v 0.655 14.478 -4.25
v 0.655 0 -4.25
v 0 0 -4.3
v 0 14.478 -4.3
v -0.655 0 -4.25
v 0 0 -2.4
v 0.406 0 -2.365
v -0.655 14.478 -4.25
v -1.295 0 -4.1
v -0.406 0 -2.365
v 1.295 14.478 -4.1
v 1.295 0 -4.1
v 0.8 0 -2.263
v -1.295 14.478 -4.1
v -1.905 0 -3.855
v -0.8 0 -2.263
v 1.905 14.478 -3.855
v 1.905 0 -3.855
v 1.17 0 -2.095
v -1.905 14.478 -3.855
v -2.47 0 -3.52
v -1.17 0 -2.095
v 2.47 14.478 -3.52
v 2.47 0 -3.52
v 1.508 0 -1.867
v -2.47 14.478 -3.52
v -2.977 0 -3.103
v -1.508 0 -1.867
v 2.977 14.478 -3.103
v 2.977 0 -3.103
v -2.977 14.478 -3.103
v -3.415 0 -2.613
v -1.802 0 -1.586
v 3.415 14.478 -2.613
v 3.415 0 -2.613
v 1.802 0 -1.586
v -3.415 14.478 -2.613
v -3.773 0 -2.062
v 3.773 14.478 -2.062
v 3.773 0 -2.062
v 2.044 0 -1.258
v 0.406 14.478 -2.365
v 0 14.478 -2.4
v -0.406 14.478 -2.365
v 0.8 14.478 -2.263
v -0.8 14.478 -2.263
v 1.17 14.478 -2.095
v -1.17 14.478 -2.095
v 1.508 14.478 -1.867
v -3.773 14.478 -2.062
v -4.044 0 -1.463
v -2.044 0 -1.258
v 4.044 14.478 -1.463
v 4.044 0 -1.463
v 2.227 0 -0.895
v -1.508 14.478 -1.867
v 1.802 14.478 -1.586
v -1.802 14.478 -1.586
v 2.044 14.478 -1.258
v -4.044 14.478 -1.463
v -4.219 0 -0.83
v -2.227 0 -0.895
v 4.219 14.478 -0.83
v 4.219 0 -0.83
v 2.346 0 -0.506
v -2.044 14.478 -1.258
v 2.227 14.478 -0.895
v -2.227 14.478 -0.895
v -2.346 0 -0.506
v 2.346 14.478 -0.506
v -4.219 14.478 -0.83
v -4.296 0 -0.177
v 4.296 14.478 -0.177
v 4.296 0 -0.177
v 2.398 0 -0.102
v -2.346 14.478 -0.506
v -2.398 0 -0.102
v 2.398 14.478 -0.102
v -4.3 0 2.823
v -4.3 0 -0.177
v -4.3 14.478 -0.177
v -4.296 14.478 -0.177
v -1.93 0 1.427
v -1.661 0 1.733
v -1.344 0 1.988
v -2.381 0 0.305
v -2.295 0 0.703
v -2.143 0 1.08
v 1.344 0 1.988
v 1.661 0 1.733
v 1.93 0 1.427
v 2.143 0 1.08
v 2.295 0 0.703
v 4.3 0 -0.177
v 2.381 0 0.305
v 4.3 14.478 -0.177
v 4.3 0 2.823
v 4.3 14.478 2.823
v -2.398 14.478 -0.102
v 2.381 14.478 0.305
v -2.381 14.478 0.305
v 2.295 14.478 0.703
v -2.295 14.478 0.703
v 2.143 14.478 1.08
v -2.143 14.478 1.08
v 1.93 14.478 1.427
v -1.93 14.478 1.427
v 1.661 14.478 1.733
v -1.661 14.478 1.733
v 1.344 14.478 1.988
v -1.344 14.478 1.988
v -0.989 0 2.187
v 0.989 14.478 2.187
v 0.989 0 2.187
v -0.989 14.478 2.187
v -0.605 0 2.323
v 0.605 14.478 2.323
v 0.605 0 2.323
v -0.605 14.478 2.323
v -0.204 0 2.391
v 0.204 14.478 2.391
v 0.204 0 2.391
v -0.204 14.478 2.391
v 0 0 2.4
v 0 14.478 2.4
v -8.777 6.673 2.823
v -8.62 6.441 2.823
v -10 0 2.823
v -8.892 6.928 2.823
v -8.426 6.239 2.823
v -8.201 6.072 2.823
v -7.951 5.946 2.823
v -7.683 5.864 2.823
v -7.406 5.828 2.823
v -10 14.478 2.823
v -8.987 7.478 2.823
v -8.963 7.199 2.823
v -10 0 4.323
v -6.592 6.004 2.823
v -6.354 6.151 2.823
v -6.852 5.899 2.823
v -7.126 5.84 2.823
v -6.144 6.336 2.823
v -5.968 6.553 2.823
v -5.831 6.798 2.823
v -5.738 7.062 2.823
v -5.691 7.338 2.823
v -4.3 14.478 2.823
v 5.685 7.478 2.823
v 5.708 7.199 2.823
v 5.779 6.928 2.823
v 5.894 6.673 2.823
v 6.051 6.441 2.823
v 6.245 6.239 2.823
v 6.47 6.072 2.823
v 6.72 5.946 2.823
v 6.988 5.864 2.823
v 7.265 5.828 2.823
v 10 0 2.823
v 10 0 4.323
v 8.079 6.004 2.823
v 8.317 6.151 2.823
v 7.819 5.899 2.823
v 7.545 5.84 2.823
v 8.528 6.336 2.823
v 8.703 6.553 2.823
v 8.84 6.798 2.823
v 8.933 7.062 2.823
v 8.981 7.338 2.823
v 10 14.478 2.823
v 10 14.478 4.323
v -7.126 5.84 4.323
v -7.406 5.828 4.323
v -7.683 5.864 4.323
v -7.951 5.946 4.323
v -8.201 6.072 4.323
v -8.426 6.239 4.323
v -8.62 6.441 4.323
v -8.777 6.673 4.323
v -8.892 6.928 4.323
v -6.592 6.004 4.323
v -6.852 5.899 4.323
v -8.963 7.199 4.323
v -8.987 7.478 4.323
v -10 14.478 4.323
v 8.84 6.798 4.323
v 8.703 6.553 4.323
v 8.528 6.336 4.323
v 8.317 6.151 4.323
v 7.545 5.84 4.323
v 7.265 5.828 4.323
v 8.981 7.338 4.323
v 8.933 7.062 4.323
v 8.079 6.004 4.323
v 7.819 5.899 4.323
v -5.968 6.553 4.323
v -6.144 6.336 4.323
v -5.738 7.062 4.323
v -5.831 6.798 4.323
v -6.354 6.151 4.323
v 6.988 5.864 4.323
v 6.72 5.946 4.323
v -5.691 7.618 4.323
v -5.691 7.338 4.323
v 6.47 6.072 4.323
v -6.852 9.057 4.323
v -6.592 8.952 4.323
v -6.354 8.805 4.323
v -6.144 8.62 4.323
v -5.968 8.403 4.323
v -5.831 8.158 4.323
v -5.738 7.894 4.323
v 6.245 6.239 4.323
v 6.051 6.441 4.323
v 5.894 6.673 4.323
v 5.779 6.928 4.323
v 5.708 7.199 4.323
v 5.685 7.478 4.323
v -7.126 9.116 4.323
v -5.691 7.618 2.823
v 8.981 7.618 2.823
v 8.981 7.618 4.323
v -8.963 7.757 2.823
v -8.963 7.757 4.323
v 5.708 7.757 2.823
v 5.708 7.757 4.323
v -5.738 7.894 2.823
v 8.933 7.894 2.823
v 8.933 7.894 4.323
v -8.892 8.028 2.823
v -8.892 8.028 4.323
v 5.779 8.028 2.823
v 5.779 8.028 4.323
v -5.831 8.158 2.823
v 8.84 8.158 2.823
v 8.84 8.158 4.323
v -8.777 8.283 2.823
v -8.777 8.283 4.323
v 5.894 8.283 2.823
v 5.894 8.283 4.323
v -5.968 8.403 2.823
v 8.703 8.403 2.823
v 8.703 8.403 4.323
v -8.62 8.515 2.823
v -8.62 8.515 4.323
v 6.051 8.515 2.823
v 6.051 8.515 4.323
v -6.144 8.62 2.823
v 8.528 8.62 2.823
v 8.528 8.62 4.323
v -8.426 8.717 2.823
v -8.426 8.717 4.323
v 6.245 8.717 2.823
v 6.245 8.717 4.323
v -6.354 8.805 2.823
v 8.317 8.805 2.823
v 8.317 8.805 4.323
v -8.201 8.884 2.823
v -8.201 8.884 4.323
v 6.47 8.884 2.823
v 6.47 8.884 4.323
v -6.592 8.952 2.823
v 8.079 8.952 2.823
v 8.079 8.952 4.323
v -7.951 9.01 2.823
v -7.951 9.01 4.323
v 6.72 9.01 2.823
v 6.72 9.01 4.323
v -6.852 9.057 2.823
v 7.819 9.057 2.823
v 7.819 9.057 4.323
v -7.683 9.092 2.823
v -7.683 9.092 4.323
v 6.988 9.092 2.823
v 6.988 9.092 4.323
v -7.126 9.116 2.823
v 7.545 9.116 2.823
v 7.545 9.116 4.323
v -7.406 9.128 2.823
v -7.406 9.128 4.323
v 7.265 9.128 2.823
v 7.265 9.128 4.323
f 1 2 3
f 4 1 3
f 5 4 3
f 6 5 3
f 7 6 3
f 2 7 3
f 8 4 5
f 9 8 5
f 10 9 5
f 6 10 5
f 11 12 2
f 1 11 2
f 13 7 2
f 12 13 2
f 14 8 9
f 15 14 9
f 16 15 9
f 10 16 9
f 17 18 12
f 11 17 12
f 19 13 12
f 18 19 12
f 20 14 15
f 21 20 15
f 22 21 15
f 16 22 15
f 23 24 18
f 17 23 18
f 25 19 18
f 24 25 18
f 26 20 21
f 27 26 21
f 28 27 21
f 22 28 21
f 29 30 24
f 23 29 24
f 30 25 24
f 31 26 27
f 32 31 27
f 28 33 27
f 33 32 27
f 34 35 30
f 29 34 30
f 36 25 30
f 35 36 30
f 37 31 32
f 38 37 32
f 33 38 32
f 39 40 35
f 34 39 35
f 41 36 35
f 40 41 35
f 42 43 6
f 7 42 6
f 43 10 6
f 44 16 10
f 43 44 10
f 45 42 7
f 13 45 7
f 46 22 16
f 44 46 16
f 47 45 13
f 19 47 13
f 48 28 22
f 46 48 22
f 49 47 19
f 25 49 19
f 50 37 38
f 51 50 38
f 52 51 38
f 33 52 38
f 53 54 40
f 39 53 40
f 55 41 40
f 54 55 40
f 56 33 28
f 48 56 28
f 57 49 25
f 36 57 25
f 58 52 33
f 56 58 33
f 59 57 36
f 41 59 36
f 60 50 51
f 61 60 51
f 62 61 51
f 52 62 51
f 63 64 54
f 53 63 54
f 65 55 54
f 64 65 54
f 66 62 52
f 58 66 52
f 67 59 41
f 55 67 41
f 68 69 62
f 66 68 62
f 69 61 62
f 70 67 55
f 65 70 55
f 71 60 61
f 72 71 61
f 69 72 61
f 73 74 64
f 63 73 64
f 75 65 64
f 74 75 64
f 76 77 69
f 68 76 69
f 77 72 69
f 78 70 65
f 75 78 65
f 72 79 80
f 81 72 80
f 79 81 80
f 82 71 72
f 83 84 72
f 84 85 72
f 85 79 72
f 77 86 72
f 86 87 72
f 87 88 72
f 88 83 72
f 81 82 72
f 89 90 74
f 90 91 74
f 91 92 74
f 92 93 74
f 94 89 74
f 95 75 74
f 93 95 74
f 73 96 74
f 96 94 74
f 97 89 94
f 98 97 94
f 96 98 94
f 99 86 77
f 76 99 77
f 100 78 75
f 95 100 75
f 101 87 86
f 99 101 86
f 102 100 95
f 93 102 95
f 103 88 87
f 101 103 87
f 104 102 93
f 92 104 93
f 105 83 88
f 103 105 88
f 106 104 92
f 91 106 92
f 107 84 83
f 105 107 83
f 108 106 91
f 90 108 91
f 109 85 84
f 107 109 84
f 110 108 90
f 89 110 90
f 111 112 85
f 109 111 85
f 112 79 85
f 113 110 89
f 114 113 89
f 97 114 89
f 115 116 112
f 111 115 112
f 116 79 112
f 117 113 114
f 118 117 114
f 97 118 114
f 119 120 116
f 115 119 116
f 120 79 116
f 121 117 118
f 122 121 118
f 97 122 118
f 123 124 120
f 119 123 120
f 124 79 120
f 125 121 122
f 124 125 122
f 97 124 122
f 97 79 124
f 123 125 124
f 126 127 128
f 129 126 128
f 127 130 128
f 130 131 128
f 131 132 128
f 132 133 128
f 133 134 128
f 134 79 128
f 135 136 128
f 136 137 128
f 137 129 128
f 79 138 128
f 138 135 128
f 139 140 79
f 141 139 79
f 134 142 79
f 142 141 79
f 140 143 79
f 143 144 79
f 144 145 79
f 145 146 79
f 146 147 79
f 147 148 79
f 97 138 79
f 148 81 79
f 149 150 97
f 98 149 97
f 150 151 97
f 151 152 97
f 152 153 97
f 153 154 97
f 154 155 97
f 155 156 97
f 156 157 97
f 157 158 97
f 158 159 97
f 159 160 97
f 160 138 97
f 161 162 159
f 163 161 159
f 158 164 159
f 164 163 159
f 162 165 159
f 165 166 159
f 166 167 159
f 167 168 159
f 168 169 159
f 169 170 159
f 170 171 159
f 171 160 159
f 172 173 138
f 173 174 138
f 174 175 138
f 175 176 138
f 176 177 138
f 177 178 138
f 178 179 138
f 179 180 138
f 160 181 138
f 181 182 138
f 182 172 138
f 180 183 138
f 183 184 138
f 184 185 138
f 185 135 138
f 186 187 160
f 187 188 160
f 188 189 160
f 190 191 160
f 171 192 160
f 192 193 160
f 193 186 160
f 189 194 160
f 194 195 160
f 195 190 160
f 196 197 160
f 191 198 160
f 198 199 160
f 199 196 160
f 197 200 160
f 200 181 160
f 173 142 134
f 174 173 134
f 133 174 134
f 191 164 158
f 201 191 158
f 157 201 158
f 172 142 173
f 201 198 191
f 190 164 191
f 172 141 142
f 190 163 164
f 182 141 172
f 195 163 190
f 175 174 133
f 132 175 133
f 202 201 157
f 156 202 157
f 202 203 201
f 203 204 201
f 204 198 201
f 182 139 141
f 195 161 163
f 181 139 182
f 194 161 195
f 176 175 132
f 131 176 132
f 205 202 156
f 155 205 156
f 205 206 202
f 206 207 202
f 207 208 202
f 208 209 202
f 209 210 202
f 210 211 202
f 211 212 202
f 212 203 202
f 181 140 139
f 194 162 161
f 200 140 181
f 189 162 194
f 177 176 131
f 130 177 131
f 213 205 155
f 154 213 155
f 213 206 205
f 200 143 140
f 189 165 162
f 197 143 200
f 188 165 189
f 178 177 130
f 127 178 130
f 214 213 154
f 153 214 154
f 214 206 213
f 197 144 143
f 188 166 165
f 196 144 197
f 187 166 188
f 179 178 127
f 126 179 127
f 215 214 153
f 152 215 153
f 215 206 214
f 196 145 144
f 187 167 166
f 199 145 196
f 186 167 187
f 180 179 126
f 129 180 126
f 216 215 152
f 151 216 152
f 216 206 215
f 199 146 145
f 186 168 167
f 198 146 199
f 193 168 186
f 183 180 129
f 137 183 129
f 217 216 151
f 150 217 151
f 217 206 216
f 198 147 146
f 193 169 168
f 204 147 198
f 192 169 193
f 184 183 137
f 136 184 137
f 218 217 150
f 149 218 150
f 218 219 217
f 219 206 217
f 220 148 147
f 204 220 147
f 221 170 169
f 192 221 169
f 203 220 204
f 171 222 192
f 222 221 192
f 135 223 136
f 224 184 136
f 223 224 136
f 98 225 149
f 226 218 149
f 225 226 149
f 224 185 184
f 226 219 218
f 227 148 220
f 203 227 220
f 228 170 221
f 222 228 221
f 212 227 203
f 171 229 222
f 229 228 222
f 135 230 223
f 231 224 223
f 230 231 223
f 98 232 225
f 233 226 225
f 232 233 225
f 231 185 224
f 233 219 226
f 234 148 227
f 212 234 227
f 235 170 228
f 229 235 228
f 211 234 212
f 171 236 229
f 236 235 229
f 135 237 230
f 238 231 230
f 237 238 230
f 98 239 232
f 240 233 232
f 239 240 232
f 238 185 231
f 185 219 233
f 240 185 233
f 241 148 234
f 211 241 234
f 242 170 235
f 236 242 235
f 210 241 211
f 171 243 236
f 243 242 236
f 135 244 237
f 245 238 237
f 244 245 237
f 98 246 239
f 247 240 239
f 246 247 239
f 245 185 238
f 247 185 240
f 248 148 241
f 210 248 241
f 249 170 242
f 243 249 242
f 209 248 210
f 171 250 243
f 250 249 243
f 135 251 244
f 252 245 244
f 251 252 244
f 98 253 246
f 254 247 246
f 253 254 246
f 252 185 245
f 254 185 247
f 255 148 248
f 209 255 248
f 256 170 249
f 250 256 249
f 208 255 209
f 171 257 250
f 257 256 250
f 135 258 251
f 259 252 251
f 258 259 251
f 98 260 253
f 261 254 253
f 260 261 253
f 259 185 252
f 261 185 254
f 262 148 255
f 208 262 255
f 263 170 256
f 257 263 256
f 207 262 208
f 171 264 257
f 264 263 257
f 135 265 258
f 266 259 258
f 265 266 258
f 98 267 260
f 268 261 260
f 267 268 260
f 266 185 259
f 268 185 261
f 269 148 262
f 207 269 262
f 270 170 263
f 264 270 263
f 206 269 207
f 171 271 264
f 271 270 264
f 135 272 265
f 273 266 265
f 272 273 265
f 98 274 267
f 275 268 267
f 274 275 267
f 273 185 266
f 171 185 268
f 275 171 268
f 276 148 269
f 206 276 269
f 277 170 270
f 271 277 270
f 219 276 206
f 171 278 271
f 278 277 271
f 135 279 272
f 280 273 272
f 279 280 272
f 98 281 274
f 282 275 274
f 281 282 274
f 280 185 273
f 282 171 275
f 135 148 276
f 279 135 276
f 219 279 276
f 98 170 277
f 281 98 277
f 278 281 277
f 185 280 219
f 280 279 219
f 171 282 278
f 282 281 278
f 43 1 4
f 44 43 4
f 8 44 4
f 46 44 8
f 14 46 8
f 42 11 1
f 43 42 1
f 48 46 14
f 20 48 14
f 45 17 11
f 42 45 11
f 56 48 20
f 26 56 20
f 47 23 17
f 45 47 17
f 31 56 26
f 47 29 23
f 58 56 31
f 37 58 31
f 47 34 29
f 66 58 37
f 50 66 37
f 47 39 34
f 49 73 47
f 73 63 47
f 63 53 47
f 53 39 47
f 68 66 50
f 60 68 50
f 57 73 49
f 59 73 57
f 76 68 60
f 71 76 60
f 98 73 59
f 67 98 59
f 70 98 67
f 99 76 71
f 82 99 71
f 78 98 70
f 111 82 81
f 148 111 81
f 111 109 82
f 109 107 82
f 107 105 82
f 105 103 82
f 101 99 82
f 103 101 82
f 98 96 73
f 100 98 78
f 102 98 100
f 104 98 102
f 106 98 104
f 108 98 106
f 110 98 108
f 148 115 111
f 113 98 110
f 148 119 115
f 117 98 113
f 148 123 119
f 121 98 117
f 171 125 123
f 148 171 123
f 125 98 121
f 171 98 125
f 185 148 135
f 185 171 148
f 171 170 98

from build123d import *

# Parameters (mm, degrees)
SKETCH1_R           = 4.3
SKETCH1_R_2         = 2.4
SKETCH1_W           = 20
SKETCH1_H           = 1.5
BOSS_EXTRUDE1_DEPTH = 14.478
SKETCH2_W           = 1.056255113
SKETCH2_H           = 14.478
BOSS_EXTRUDE2_DEPTH = 3
SKETCH3_W           = 1.056255113
SKETCH3_H           = 14.478
BOSS_EXTRUDE3_DEPTH = 3
SKETCH4_R           = 1.651
CUT_EXTRUDE1_DEPTH  = 3


with BuildPart() as part:
    # Sketch1 → Boss-Extrude1 (new body)
    # profile 1 of 2: a face of its own
    with BuildSketch(Plane(origin=(0, 0, 0), x_dir=(1, 0, 0), z_dir=(0, 1, 0))):
        Circle(SKETCH1_R)
        with Locations(Location((0, 0, 0), (0, 0, 270))):
            Circle(SKETCH1_R_2, mode=Mode.SUBTRACT)
    # profile 2 of 2: a face of its own
    with BuildSketch(Plane(origin=(0, 0, 0), x_dir=(1, 0, 0), z_dir=(0, 1, 0))):
        with Locations((0, -3.572785701)):
            Rectangle(SKETCH1_W, SKETCH1_H)
    extrude(amount=BOSS_EXTRUDE1_DEPTH)

    # Sketch2 → Boss-Extrude2 (add)
    with BuildSketch(Plane(origin=(0, 0, 2.822785701), x_dir=(-1, 0, 0), z_dir=(0, 0, -1))):
        with Locations((-3.771872444, 7.239)):
            Rectangle(SKETCH2_W, SKETCH2_H)
    extrude(amount=BOSS_EXTRUDE2_DEPTH)

    # Sketch3 → Boss-Extrude3 (add)
    with BuildSketch(Plane(origin=(0, 0, 2.822785701), x_dir=(-1, 0, 0), z_dir=(0, 0, -1))):
        with Locations((3.771872444, 7.239)):
            Rectangle(SKETCH3_W, SKETCH3_H)
    extrude(amount=BOSS_EXTRUDE3_DEPTH)

    # Sketch4 → Cut-Extrude1 (cut)
    with BuildSketch(Plane(origin=(0, 0, 2.822785701), x_dir=(-1, 0, 0), z_dir=(0, 0, -1))):
        with Locations((-7.335568172, 7.478)):
            Circle(SKETCH4_R)
        with Locations((7.335568172, 7.478)):
            Circle(SKETCH4_R)
    extrude(amount=-CUT_EXTRUDE1_DEPTH, mode=Mode.SUBTRACT)


solid = part.part
